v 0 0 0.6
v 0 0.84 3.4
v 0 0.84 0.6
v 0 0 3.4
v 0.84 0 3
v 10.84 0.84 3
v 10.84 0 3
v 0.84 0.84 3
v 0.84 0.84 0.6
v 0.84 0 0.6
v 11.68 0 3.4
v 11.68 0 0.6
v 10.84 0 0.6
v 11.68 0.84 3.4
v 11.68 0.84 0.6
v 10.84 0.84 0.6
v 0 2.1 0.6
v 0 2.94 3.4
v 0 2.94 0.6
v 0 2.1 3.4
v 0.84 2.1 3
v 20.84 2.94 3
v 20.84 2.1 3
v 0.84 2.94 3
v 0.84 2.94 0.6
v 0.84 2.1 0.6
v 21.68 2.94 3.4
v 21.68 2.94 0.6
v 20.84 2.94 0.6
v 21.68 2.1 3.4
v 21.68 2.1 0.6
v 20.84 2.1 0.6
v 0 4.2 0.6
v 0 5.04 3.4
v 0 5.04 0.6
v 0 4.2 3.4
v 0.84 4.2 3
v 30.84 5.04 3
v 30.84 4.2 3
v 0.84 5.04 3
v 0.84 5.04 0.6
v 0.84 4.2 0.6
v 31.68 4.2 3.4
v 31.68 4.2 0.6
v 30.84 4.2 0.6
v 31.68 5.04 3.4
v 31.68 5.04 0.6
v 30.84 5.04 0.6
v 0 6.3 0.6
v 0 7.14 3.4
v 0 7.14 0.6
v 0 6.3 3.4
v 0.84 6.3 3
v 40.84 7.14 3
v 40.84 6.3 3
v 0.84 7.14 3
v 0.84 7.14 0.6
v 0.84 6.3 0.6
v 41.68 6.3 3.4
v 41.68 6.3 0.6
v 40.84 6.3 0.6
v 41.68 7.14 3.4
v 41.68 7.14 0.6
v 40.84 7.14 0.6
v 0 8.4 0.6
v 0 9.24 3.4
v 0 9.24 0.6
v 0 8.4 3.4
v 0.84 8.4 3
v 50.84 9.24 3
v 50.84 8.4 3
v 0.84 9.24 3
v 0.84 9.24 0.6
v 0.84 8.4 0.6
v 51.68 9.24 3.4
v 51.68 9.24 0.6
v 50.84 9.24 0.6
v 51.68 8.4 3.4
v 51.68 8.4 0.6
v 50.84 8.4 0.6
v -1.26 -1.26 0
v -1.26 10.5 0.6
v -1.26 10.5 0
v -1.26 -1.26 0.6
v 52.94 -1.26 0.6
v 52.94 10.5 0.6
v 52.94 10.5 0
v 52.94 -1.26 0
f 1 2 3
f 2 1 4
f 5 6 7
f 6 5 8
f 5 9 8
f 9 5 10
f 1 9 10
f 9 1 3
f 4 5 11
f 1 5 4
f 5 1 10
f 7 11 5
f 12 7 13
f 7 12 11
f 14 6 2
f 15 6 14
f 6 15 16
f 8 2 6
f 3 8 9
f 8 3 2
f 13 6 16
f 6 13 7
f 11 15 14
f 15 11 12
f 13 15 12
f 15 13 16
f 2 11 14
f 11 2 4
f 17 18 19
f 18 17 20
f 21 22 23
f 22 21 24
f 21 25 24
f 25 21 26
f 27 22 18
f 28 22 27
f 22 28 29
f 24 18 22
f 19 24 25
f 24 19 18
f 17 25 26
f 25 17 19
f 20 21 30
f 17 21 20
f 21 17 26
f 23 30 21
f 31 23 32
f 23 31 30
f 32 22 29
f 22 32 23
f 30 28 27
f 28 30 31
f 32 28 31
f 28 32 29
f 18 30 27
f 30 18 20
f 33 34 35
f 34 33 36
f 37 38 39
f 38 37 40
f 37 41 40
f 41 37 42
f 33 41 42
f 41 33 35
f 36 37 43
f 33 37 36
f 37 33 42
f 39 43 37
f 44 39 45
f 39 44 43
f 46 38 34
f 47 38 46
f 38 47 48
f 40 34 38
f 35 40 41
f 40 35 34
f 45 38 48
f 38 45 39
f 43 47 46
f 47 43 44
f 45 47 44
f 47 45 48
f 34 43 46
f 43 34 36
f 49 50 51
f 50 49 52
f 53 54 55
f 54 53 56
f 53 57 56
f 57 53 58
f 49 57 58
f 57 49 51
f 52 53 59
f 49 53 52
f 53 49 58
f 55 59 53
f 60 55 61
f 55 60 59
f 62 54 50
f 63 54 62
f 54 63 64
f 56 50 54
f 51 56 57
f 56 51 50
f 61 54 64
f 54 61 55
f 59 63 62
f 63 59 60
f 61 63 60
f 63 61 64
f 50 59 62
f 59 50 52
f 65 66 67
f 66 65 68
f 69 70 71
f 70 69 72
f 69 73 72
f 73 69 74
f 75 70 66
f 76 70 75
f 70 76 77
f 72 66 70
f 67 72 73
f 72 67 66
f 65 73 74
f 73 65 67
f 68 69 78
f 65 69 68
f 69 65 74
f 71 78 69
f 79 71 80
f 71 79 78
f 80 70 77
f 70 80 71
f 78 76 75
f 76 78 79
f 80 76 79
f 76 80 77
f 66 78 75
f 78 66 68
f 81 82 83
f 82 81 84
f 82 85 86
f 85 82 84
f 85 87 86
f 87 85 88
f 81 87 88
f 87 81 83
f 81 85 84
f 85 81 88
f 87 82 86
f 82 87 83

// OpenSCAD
include <3d-printer-testing-suite.scad>

/* [Hidden] */
test_type = "bridging";
